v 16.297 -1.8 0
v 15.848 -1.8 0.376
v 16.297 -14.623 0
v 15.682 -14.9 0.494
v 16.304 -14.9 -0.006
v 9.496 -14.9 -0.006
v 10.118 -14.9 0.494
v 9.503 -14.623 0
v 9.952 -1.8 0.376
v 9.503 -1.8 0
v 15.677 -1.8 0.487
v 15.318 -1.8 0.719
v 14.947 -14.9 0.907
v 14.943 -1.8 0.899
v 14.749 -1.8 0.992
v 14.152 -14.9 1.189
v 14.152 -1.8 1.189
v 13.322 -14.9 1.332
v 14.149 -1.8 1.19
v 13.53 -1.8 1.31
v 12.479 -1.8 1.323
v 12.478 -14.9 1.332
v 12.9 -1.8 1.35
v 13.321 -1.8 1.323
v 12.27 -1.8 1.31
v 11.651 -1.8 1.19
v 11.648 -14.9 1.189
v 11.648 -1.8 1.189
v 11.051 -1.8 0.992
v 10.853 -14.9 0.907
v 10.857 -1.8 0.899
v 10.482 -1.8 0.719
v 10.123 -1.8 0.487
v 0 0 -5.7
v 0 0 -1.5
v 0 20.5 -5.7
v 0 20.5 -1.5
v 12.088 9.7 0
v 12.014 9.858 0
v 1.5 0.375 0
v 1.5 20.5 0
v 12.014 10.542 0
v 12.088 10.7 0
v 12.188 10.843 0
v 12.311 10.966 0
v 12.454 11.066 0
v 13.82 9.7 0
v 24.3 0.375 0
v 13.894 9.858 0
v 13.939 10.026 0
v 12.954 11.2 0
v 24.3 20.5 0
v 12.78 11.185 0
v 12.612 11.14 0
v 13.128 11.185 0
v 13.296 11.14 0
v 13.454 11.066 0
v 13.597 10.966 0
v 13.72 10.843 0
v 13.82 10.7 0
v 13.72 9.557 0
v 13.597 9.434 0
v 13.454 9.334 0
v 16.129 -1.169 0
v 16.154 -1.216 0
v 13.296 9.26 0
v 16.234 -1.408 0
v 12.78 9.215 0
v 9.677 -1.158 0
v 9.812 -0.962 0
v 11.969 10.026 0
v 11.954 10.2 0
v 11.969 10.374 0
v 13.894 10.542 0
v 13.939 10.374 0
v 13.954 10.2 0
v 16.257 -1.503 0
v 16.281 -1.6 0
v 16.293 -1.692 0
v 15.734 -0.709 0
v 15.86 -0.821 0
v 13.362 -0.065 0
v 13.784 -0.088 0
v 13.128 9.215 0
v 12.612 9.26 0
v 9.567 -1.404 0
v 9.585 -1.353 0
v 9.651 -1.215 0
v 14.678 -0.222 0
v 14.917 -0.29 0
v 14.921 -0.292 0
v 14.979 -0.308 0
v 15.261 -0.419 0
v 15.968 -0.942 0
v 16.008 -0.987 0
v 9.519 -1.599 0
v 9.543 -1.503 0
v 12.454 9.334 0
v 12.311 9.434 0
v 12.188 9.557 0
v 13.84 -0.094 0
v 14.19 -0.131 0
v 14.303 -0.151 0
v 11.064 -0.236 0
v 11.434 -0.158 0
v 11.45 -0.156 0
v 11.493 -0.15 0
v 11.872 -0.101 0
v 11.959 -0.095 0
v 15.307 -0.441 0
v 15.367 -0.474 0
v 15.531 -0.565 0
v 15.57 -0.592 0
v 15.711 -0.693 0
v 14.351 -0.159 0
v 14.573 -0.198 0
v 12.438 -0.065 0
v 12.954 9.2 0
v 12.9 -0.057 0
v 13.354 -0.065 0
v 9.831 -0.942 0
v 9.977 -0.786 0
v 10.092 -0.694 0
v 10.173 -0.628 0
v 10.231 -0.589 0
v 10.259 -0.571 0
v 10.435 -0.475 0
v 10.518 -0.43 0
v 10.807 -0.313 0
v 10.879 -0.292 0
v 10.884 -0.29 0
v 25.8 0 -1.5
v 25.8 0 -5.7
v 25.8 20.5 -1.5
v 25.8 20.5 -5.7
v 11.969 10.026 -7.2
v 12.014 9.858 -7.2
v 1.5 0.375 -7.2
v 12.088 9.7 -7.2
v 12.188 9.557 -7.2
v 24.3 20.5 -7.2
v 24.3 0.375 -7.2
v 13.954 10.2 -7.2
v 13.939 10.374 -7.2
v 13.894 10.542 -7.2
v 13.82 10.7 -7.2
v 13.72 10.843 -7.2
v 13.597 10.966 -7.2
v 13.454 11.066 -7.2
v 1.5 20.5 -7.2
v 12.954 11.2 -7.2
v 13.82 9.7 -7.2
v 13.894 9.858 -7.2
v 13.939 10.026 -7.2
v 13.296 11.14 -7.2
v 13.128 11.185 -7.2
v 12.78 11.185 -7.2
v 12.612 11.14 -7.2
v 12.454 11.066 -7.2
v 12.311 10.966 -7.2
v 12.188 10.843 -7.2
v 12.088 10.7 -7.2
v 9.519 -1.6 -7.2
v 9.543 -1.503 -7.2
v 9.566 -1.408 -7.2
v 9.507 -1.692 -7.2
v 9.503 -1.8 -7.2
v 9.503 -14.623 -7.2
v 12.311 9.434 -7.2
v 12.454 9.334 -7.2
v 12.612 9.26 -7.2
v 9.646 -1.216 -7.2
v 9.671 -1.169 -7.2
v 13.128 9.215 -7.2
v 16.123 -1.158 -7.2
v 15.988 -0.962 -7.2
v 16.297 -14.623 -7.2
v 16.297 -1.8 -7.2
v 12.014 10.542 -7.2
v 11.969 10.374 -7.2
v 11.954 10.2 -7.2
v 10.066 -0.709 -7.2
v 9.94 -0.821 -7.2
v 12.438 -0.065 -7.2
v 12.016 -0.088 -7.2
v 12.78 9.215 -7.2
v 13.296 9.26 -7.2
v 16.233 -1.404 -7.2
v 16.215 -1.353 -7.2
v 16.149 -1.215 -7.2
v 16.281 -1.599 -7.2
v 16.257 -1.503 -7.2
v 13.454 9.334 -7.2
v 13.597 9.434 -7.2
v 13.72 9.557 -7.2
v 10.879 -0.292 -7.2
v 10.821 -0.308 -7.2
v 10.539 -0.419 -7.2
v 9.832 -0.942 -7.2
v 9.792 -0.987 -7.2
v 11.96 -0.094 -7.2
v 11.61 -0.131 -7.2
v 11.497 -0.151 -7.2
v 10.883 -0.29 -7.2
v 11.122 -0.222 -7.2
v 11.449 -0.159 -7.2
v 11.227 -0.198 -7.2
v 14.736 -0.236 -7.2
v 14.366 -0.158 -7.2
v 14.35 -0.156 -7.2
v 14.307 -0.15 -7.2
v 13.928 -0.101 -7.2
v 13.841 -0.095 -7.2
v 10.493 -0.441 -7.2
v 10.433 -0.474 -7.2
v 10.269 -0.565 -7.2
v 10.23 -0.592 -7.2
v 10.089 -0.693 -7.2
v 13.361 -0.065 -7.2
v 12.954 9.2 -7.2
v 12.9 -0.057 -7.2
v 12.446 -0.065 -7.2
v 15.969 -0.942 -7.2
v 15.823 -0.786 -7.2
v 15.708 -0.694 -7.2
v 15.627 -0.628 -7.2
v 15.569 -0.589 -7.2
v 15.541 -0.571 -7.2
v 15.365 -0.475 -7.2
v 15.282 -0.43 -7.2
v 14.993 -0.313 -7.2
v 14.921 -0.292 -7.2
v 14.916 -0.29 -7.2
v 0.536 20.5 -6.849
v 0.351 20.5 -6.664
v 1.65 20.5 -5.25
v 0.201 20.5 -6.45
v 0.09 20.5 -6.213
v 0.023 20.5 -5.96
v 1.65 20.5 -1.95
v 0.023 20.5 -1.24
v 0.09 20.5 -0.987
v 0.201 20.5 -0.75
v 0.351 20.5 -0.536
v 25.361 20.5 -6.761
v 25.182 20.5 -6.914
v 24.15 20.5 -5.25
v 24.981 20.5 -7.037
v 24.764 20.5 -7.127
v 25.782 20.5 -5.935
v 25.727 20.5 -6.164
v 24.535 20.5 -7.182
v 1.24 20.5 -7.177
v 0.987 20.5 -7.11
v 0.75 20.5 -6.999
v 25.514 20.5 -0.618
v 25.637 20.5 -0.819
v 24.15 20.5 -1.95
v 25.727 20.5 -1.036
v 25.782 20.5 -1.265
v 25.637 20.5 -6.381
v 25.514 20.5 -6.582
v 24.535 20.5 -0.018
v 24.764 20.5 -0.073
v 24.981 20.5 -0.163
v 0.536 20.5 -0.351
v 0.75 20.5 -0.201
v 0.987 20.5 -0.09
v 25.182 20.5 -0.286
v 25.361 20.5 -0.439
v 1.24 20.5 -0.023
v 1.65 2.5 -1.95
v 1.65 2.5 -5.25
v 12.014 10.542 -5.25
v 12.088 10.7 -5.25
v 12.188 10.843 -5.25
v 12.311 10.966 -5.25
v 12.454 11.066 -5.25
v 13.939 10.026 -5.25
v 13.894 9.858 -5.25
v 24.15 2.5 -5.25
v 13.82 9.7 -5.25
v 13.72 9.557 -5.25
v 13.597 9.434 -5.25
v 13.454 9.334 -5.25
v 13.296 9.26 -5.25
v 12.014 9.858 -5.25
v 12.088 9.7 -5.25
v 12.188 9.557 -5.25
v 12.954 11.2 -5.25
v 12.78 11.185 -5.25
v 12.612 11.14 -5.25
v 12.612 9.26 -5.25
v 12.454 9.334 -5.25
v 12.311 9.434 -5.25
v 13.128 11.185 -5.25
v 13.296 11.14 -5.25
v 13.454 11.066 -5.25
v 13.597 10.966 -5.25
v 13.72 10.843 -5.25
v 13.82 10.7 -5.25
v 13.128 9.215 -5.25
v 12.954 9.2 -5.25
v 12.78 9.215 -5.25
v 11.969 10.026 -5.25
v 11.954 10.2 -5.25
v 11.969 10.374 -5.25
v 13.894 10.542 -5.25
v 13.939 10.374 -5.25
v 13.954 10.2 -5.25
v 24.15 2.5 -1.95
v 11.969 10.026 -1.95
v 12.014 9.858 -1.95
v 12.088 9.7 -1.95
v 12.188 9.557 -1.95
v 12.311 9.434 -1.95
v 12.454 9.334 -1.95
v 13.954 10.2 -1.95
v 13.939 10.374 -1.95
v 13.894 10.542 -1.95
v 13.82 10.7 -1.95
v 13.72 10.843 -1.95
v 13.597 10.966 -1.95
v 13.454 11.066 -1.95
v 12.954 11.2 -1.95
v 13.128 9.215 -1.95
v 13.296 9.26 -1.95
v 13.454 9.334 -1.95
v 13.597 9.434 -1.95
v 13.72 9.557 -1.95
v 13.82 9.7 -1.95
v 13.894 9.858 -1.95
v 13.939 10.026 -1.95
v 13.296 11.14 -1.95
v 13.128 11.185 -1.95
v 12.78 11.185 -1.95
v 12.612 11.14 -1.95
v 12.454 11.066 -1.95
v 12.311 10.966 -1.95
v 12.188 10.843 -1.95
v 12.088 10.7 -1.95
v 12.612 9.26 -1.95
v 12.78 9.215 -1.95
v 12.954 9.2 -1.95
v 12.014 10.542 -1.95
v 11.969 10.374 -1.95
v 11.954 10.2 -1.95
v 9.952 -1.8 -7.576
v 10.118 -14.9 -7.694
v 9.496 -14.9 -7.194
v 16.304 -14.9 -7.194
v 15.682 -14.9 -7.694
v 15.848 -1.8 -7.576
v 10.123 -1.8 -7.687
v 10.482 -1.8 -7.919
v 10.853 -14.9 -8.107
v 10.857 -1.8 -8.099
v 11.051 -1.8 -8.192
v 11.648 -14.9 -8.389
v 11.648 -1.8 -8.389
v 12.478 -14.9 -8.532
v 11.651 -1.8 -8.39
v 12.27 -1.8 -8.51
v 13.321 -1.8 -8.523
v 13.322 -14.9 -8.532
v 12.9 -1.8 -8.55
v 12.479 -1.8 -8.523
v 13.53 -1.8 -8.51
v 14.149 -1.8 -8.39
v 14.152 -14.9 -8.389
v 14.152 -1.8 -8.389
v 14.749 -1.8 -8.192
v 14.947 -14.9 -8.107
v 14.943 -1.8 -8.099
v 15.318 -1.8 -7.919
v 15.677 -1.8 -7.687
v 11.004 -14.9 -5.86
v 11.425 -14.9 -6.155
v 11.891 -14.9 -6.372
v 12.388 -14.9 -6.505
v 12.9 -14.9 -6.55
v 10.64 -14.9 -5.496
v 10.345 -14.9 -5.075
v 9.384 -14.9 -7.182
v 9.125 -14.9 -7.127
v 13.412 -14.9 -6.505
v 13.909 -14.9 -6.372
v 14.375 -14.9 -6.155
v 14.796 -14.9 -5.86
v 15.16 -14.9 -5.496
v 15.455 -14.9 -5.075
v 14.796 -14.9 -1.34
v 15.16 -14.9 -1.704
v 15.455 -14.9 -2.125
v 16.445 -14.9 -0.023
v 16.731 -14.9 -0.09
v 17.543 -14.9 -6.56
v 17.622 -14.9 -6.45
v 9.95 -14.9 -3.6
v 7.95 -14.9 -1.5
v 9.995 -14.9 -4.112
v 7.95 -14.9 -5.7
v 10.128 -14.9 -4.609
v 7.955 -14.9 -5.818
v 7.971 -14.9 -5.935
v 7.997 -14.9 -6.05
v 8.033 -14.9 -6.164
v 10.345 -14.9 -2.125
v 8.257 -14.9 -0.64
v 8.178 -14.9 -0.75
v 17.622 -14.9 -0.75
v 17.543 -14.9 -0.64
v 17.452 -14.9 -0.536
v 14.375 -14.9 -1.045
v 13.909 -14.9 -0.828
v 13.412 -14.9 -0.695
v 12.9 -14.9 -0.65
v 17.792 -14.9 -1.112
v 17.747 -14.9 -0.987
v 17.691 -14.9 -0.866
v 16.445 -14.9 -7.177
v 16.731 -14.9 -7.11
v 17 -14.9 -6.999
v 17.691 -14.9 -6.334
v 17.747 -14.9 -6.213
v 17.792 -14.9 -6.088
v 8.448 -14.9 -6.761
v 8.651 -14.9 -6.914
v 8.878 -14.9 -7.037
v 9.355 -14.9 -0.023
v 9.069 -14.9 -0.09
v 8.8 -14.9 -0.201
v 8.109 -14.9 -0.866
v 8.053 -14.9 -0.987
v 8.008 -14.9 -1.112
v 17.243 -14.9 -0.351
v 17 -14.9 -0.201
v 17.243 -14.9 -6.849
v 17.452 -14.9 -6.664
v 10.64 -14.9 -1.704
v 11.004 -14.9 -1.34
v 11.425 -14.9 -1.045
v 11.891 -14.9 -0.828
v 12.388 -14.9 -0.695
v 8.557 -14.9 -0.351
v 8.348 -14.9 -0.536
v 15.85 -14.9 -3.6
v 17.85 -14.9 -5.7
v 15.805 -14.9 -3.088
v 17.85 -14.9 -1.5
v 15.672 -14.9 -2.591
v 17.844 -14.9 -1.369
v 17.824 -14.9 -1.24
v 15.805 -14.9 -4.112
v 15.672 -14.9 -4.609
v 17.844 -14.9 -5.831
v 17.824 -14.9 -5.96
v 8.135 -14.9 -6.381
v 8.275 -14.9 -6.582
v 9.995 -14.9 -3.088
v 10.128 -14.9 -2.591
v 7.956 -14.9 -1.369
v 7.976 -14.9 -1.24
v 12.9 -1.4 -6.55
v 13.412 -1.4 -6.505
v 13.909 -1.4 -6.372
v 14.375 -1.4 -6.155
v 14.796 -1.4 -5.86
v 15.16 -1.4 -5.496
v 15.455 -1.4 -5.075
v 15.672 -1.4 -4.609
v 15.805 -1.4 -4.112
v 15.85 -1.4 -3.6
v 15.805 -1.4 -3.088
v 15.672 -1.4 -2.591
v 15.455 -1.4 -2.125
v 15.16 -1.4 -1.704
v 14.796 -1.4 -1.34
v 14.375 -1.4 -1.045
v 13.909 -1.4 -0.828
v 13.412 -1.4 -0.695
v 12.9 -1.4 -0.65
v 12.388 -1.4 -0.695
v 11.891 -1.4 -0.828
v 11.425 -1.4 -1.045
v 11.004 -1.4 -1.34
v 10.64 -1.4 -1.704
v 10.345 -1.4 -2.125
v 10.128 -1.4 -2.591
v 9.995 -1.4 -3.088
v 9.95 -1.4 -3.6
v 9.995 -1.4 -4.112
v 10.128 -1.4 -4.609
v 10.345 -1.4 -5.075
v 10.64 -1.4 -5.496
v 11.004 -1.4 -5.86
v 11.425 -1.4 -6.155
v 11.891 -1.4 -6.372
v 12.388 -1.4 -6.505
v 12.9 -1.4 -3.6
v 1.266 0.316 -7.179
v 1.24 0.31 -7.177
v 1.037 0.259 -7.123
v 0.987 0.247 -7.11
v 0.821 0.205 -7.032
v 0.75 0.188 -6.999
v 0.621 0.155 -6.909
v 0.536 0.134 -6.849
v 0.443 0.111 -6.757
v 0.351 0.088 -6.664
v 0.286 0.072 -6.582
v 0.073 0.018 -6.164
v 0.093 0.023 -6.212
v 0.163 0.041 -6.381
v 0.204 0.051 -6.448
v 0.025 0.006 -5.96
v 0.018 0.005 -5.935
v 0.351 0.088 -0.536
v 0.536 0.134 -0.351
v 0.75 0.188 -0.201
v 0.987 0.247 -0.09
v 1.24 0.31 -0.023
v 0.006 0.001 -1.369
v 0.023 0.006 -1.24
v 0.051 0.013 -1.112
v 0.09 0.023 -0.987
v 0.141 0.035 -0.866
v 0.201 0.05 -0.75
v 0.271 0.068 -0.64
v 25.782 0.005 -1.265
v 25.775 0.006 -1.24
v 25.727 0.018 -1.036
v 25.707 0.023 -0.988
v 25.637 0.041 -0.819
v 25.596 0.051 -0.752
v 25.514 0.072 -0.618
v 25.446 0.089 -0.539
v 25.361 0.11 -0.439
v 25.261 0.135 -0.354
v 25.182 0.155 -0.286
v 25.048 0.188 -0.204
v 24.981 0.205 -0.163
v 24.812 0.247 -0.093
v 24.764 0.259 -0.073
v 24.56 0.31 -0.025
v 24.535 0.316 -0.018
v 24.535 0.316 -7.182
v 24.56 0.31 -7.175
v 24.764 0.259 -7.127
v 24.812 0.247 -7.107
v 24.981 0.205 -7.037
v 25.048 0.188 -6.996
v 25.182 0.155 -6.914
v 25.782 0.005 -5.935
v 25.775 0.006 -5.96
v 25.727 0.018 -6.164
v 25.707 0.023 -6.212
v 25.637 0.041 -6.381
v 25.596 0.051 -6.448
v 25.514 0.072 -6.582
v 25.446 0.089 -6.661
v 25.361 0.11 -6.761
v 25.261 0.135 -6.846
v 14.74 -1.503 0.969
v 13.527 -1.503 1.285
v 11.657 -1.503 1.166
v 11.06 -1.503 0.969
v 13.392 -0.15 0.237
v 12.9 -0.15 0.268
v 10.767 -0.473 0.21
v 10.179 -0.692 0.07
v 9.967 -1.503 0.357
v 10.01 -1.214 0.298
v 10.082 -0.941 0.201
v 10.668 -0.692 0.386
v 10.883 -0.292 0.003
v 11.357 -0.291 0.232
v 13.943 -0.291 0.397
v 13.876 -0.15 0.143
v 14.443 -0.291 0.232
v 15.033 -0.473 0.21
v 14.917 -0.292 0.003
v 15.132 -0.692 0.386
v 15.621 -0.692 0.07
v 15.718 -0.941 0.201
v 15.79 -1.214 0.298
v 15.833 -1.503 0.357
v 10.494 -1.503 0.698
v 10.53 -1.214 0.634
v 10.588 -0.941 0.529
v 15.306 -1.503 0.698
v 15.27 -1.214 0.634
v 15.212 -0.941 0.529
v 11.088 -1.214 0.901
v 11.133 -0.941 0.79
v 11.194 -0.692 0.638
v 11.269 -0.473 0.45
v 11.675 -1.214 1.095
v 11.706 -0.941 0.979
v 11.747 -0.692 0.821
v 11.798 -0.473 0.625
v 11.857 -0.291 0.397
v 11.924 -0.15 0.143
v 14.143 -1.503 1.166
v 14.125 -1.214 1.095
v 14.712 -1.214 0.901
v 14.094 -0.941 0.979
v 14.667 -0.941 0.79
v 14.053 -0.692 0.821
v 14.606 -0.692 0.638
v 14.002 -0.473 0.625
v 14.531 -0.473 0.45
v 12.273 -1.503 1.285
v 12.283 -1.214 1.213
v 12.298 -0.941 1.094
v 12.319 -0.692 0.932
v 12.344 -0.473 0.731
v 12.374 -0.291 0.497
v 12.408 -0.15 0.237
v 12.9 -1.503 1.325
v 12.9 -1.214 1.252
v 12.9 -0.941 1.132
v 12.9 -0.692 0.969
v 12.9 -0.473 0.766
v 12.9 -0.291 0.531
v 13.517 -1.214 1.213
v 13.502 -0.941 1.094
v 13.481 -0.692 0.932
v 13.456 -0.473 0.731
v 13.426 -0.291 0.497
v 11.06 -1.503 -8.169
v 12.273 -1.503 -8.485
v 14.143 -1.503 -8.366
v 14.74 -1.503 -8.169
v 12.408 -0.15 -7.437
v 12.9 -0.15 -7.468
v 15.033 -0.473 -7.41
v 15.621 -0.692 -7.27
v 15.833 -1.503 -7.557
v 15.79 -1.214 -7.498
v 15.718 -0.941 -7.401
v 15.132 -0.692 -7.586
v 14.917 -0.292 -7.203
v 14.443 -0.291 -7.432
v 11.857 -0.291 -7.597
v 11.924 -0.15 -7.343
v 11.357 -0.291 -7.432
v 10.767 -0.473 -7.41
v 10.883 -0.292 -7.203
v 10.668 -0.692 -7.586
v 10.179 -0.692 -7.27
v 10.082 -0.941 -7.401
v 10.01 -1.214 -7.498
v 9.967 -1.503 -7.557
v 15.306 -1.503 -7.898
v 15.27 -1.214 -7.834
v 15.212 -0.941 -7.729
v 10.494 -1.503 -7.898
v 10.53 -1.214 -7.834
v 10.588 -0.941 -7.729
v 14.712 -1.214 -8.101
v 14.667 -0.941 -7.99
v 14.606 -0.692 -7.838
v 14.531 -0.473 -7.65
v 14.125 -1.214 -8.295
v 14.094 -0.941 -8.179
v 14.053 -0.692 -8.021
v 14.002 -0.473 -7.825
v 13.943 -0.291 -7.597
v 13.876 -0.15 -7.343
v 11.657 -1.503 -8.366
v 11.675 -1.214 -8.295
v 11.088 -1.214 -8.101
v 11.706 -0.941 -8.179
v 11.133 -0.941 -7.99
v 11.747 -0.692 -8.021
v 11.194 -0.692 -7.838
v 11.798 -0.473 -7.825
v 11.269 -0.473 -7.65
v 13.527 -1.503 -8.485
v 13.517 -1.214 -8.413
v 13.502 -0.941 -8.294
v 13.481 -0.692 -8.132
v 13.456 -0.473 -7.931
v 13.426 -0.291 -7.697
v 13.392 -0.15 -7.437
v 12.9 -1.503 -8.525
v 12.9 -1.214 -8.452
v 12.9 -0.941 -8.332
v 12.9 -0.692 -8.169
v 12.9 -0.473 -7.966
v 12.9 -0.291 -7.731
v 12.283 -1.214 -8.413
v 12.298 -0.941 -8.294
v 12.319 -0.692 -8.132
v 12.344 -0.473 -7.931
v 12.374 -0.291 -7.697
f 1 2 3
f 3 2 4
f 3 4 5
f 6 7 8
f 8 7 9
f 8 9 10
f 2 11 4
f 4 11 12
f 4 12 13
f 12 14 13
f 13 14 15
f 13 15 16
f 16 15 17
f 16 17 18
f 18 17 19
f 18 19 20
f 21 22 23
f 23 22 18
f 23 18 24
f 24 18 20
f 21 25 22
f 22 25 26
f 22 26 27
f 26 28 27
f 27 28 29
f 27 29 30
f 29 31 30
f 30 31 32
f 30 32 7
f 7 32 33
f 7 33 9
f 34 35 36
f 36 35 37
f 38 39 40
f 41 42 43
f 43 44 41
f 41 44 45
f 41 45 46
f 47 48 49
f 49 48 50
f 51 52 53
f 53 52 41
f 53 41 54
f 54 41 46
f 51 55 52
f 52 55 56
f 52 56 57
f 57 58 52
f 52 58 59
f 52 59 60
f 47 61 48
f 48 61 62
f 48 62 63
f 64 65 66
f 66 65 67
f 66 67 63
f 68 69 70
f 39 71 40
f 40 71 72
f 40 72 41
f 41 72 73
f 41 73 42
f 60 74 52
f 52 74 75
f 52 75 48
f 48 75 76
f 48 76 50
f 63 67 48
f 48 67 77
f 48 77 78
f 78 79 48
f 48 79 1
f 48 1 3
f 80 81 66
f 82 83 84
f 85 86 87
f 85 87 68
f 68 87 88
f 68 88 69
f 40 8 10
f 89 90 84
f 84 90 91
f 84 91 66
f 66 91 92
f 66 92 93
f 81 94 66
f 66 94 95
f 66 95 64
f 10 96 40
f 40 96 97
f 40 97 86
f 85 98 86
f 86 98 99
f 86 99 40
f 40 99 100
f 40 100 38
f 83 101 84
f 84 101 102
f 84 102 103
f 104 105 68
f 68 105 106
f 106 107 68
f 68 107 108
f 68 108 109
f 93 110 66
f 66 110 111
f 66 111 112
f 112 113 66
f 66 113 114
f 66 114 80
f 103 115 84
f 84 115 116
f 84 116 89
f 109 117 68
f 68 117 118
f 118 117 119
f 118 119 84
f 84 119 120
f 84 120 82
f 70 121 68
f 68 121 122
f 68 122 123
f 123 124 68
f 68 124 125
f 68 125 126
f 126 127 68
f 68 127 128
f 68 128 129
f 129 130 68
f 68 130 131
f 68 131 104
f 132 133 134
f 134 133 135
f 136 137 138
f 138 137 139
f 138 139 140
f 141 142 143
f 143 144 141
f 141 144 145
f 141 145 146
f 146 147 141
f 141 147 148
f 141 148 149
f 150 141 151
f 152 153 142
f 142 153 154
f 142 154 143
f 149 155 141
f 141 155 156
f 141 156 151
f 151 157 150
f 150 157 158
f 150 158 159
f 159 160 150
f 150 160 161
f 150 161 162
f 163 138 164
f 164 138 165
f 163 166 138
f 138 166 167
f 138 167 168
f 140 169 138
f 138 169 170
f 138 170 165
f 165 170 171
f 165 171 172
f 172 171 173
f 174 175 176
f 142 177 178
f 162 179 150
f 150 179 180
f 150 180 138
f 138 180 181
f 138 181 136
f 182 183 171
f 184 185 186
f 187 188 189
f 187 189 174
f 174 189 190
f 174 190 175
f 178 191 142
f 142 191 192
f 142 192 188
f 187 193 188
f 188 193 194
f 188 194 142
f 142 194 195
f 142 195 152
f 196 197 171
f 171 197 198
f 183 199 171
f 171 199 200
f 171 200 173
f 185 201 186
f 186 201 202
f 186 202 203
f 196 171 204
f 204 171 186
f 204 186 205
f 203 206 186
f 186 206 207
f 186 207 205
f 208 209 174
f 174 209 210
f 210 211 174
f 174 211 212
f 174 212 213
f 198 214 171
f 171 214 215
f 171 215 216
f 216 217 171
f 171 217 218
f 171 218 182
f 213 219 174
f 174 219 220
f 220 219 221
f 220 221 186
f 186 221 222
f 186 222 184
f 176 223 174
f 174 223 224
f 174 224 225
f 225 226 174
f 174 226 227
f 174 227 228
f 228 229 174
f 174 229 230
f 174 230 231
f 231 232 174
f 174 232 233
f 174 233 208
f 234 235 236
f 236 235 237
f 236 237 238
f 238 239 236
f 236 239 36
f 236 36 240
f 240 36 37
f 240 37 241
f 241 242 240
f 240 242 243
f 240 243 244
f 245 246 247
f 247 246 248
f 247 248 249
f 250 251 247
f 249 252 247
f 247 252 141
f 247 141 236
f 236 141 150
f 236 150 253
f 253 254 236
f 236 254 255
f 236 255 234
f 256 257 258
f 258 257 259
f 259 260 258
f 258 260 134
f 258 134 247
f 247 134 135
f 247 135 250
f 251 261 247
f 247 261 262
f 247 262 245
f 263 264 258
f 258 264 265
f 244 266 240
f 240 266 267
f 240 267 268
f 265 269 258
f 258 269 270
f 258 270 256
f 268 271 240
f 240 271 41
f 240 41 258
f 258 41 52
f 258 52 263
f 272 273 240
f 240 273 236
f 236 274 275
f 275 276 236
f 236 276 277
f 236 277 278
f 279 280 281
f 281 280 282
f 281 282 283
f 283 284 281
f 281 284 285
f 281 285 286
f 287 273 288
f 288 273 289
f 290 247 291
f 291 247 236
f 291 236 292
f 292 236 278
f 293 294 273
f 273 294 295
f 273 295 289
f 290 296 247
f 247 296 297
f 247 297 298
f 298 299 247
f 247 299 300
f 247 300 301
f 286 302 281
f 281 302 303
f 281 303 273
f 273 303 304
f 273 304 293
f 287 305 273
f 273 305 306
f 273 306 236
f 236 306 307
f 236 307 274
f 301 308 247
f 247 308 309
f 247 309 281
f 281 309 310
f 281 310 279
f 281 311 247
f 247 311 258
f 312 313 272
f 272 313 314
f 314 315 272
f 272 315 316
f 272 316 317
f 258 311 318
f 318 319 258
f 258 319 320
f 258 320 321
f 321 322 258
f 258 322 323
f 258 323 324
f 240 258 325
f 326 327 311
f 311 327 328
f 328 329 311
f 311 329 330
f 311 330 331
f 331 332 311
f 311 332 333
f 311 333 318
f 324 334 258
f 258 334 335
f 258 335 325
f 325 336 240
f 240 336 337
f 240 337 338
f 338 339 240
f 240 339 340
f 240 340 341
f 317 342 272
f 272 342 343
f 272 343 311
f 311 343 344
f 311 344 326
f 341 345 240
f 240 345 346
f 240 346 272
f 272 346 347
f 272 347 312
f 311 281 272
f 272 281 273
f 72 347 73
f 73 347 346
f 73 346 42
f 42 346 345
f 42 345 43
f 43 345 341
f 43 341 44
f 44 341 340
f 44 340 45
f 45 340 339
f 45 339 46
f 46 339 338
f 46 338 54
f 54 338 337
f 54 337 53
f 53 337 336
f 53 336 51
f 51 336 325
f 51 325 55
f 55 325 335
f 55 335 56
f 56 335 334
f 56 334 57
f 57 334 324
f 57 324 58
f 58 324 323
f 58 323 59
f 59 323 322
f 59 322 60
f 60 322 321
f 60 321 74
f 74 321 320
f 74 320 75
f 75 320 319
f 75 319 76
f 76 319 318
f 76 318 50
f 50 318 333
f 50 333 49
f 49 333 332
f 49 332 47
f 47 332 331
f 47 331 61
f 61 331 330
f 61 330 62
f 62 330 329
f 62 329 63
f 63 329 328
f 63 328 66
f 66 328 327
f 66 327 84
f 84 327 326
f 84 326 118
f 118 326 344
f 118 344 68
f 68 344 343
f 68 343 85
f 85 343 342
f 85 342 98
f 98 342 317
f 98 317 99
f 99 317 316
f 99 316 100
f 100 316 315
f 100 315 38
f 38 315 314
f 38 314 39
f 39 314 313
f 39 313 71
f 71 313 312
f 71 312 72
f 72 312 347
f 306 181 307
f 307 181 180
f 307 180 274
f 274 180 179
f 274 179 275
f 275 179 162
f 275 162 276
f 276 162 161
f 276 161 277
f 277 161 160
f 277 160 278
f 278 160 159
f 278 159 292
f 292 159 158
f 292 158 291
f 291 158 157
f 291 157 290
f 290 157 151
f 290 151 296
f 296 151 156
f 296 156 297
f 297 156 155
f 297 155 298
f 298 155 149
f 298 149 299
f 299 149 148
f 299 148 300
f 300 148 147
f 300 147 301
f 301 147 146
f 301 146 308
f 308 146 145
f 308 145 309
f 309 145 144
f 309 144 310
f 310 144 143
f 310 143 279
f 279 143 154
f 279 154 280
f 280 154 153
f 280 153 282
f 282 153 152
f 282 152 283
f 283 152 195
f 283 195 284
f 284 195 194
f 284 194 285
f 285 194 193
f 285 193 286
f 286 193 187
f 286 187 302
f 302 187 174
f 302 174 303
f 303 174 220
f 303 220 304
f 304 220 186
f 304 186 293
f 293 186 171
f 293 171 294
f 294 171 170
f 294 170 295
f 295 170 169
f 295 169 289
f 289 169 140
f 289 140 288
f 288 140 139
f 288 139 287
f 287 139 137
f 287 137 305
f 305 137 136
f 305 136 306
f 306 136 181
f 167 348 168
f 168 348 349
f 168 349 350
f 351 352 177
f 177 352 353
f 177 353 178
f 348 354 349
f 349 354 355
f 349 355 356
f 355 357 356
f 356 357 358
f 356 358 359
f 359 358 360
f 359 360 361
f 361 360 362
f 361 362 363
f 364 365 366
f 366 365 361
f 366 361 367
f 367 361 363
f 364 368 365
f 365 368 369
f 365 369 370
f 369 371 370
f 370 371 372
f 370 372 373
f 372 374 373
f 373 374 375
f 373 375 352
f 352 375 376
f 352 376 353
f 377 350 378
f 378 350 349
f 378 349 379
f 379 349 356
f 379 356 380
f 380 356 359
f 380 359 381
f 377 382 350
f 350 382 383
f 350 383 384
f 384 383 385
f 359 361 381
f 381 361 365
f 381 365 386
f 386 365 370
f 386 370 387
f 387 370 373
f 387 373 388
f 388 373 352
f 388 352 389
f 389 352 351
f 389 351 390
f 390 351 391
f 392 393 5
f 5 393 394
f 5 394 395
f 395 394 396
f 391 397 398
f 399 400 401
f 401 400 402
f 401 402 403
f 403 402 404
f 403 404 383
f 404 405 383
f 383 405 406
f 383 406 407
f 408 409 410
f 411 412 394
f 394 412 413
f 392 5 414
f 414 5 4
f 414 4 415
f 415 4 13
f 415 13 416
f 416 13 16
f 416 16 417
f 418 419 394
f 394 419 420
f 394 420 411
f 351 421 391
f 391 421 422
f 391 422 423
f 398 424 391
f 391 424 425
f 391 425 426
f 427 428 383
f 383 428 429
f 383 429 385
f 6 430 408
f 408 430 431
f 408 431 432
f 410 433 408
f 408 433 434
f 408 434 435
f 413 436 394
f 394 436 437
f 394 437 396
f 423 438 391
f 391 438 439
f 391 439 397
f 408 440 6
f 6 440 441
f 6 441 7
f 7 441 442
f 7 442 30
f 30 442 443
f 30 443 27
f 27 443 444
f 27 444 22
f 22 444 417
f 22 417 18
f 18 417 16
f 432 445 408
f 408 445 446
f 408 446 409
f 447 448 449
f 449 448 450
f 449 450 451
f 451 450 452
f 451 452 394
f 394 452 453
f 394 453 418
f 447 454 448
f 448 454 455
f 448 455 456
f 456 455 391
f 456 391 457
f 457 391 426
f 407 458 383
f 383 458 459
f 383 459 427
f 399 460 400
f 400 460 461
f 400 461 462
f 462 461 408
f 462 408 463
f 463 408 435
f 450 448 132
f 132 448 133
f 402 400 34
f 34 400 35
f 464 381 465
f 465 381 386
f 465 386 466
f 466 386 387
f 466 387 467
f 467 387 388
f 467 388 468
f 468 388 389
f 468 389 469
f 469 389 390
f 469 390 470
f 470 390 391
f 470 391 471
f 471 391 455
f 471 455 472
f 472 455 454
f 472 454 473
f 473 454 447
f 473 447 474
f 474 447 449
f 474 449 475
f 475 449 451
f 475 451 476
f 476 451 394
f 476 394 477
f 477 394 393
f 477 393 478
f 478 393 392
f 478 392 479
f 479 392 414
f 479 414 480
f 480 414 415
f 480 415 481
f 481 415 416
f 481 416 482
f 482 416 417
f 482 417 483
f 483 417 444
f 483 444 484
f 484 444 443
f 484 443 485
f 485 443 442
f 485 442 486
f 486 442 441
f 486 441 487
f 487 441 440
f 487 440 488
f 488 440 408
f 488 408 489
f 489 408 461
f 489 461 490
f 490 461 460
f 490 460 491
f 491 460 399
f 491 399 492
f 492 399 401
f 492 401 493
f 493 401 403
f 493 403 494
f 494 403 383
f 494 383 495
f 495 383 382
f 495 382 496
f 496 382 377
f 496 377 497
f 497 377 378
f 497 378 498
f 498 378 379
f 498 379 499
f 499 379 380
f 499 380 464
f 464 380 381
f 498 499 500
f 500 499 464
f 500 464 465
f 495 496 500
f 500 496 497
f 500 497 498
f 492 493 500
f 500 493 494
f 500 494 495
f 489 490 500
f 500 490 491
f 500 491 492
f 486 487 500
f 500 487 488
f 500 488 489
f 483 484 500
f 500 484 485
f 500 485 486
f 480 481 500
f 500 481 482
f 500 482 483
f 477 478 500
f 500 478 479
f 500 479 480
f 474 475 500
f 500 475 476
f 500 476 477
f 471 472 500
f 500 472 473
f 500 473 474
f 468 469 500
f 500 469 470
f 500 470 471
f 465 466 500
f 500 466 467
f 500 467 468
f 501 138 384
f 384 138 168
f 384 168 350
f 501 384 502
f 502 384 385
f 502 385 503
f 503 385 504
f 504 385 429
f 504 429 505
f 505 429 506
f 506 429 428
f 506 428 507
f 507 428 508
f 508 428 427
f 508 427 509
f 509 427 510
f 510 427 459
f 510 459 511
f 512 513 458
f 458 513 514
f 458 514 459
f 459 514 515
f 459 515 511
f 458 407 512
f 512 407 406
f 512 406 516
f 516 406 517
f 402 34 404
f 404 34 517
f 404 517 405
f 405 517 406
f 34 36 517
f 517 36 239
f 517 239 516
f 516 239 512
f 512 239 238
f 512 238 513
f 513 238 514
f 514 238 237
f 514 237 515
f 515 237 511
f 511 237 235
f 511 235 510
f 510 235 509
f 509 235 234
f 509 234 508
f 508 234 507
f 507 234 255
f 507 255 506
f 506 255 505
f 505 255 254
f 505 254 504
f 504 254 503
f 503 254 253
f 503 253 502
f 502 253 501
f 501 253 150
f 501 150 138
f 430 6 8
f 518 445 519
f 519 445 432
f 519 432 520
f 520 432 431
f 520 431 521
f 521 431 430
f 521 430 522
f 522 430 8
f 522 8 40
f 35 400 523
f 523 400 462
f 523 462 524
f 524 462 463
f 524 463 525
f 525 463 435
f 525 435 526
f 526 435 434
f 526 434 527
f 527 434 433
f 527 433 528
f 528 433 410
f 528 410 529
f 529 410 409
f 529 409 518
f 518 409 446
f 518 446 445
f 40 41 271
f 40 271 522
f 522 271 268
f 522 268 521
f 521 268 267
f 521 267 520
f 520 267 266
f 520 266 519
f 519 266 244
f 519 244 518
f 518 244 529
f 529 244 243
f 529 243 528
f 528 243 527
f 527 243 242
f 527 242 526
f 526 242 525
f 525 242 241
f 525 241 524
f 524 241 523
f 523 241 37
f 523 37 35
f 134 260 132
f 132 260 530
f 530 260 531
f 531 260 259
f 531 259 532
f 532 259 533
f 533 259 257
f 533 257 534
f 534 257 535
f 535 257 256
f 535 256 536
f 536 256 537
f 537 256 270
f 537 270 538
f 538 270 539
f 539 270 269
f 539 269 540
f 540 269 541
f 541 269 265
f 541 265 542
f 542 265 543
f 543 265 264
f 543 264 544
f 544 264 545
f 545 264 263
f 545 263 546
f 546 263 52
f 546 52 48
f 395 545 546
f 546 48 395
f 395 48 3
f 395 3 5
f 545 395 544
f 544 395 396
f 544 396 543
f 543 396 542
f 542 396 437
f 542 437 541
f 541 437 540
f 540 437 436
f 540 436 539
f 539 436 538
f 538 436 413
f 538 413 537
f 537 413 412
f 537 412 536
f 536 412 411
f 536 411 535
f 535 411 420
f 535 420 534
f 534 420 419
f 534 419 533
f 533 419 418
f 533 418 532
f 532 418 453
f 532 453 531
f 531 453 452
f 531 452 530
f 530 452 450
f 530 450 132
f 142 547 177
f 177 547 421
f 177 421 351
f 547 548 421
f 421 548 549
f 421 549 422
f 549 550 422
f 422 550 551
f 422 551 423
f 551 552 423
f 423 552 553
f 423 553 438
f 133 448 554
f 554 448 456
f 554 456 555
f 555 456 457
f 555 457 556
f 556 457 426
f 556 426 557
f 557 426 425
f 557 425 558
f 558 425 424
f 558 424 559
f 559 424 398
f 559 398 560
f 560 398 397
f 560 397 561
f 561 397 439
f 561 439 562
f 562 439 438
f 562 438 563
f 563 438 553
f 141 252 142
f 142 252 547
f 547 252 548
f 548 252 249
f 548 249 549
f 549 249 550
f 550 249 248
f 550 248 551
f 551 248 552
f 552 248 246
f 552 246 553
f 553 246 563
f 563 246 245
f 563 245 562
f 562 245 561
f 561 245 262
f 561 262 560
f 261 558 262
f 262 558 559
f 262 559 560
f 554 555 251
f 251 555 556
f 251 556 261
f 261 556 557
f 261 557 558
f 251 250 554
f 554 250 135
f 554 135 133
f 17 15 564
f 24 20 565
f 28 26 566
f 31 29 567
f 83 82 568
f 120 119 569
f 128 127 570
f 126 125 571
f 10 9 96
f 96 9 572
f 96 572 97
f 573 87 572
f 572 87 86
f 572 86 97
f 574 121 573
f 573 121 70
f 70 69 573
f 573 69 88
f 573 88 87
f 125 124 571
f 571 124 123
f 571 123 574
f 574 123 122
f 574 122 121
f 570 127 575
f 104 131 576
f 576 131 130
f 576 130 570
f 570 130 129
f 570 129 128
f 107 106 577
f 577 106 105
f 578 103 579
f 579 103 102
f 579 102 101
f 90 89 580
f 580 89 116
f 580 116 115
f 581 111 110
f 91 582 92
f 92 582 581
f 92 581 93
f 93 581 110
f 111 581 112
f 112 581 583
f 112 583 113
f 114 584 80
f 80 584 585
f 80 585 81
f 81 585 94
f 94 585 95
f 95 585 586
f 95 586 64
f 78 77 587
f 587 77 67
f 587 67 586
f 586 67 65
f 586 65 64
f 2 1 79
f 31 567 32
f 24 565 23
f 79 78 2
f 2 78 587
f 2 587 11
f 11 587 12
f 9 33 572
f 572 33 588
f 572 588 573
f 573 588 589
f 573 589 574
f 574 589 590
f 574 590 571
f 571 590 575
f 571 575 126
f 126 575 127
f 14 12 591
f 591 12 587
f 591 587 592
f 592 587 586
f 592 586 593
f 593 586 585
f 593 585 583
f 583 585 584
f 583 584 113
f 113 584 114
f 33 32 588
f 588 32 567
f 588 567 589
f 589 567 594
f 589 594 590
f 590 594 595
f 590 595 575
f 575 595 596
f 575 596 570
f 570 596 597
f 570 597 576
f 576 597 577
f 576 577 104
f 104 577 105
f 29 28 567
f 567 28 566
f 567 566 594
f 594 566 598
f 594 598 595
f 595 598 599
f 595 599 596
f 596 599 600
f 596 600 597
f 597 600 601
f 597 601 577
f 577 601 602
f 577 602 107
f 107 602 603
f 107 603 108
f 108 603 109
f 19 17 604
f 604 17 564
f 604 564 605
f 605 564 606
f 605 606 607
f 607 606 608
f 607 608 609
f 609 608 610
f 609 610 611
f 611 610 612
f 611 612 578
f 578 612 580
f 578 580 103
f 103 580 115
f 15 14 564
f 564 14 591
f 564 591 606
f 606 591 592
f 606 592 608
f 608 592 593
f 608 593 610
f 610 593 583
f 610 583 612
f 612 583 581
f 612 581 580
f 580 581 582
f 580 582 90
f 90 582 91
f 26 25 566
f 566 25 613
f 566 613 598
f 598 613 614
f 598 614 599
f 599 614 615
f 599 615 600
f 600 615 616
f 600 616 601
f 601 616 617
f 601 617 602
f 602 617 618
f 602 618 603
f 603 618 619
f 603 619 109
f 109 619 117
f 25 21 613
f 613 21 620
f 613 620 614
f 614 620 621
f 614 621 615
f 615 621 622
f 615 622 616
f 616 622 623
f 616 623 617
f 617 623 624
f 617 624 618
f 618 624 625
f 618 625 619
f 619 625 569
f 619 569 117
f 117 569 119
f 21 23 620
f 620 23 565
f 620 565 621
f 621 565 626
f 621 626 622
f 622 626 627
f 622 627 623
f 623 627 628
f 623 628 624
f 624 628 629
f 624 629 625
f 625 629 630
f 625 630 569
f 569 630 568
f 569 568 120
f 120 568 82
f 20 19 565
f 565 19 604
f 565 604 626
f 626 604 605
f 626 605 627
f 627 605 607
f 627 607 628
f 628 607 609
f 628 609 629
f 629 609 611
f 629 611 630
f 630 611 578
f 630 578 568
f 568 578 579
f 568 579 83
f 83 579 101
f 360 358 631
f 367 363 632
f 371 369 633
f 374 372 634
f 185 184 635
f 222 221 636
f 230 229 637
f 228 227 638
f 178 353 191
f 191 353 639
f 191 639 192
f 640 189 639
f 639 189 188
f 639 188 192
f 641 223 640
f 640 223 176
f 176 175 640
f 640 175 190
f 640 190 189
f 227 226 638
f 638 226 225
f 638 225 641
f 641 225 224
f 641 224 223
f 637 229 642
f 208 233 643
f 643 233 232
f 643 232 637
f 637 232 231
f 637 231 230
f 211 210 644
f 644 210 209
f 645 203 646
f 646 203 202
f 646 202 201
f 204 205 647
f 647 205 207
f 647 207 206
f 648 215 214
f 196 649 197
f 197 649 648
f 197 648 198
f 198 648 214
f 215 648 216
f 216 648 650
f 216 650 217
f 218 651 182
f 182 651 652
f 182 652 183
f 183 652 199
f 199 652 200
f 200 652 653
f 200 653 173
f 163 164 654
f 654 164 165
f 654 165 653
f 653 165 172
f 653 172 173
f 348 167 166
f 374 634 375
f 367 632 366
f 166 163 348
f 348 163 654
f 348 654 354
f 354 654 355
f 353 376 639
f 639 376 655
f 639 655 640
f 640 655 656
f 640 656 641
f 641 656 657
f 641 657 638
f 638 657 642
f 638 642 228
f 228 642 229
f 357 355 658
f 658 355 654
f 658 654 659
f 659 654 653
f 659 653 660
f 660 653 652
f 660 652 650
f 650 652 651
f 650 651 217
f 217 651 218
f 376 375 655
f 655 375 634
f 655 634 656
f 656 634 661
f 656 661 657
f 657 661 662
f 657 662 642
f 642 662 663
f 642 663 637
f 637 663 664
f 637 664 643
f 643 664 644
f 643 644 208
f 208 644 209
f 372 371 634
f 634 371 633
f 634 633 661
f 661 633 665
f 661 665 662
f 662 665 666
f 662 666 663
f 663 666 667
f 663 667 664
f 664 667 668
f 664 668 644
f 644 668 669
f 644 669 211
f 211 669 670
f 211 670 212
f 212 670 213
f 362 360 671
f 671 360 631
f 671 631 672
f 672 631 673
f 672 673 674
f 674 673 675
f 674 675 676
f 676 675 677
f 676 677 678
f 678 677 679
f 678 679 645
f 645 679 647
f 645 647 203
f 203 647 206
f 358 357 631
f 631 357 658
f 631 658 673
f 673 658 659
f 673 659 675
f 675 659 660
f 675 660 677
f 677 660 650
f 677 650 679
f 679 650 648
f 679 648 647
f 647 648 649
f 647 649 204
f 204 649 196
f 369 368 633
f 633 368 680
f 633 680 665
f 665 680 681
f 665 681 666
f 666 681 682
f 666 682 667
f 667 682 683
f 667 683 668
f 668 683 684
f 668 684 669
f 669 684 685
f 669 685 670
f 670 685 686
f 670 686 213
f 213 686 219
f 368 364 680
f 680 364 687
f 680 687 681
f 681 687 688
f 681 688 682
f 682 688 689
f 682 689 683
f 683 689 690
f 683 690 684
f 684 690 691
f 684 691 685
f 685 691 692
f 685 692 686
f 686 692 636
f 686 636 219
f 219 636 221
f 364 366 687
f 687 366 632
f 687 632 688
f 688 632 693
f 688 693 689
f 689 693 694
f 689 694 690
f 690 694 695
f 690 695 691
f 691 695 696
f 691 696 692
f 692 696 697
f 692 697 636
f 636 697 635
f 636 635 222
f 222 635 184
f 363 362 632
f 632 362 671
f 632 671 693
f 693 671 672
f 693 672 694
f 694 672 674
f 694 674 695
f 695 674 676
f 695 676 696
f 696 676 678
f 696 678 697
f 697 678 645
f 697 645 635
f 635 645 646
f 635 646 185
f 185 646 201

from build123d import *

# Parameters (mm, degrees)
SKETCH2_W               = 25.8
SKETCH2_H               = 7.2
BOSS_EXTRUDE1_DEPTH     = 20.5
SKETCH3_W               = 22.5
SKETCH3_H               = 3.3
CUT_EXTRUDE1_DEPTH      = 18
CUT_EXTRUDE2_DEPTH      = 34.730253483
CUT_EXTRUDE2_DEPTH_BACK = 34.730253483
SKETCH4_R               = 1
SKETCH9_R               = 4.95
BOSS_EXTRUDE6_DEPTH     = 14.9
BOSS_EXTRUDE7_DEPTH     = 7.2
SKETCH12_R              = 2.95
CUT_EXTRUDE5_DEPTH      = 13.5
FILLET2_R               = 1.5
FILLET3_R               = 1.8


with BuildPart() as part:
    # Sketch2 → Boss-Extrude1 (new body)
    with BuildSketch(Plane(origin=(0, 0, 0), x_dir=(1, 0, 0), z_dir=(0, 1, 0))):
        with Locations((12.9, 3.6)):
            Rectangle(SKETCH2_W, SKETCH2_H)
    extrude(amount=BOSS_EXTRUDE1_DEPTH)

    # Sketch3 → Cut-Extrude1 (cut)
    with BuildSketch(Plane(origin=(0, 20.5, 0), x_dir=(1, 0, 0), z_dir=(0, 1, 0))):
        with Locations((12.9, 3.6)):
            Rectangle(SKETCH3_W, SKETCH3_H)
    extrude(amount=-CUT_EXTRUDE1_DEPTH, mode=Mode.SUBTRACT)

    # Sketch4 → Cut-Extrude2 (cut, two sides: drawn at the far end of the back side and taken through both)
    with BuildSketch(Plane(origin=(0, 0, -7.2), x_dir=(-1, 0, 0), z_dir=(0, 0, -1)).offset(-CUT_EXTRUDE2_DEPTH_BACK)):
        with Locations((-12.953971153, 10.2)):
            Circle(SKETCH4_R)
    extrude(amount=CUT_EXTRUDE2_DEPTH + CUT_EXTRUDE2_DEPTH_BACK, mode=Mode.SUBTRACT)

    # Sketch9 → Boss-Extrude6 (add)
    with BuildSketch(Plane(origin=(0, 0, 0), x_dir=(-1, 0, 0), z_dir=(0, -1, 0))):
        with Locations(Location((-12.9, 3.6, 0), (0, 0, 226.658241773))):
            Circle(SKETCH9_R)
    extrude(amount=BOSS_EXTRUDE6_DEPTH)

    # Sketch11 → Boss-Extrude7 (add)
    with BuildSketch(Plane(origin=(0, 0, -7.2), x_dir=(-1, 0, 0), z_dir=(0, 0, -1))):
        Polygon((-9.502574504, 0), (-12.9, 0), (-12.9, -14.9), (-7.95, -14.9), (0, 0), align=None)
        Polygon((-12.9, -14.9), (-12.9, 0), (-16.297425496, 0), (-25.8, 0), (-17.85, -14.9), align=None)
    extrude(amount=-BOSS_EXTRUDE7_DEPTH)

    # Sketch12 → Cut-Extrude5 (cut)
    with BuildSketch(Plane(origin=(0, -14.9, 0), x_dir=(-1, 0, 0), z_dir=(0, -1, 0))):
        with Locations(Location((-12.9, 3.6, 0), (0, 0, 90))):
            Circle(SKETCH12_R)
    extrude(amount=-CUT_EXTRUDE5_DEPTH, mode=Mode.SUBTRACT)

    # Fillet2
    # the kernel refuses this fillet: 1.5 mm, written as the material it takes off along each edge
    with BuildSketch(Plane(origin=(0, -3.75, -7.2), x_dir=(0, 0, 1), z_dir=(0, 1, 0)), Plane(origin=(0, -3.75, 0), x_dir=(1, 0, 0), z_dir=(0, 1, 0))) as fillet2_piece_1:
        with BuildLine():
            CenterArc((FILLET2_R, FILLET2_R), FILLET2_R, 180, 90)
            Line((0, FILLET2_R), (0, 0))
            Line((0, 0), (FILLET2_R, 0))
        make_face()
    extrude(amount=28, mode=Mode.SUBTRACT)
    with BuildSketch(Plane(origin=(9.715282105, -18.208516146, -7.2), x_dir=(0, 0, 1), z_dir=(-0.47074189463756383, 0.8822709723395851, 0))) as fillet2_piece_2_section:
        with BuildLine():
            CenterArc((FILLET2_R, FILLET2_R), FILLET2_R, 180, 90)
            Line((0, FILLET2_R), (0, 0))
            Line((0, 0), (FILLET2_R, 0))
        make_face()
    fillet2_piece_2 = extrude(amount=24.38823555, mode=Mode.PRIVATE)
    fillet2_piece_2 = fillet2_piece_2 - Plane(origin=(12.9, -7.082671963, -3.6), x_dir=(0.686348585021791, 0, 0.727272727275391), z_dir=(0, 1, 0)) * Cylinder(4.95, 55, mode=Mode.PRIVATE)
    add(fillet2_piece_2, mode=Mode.SUBTRACT)
    with BuildSketch(Plane(origin=(9.715282105, -18.208516146, 0), x_dir=(0.8822709723395851, 0.4707418946375639, 0), z_dir=(-0.47074189463756383, 0.8822709723395851, 0))) as fillet2_piece_3_section:
        with BuildLine():
            CenterArc((FILLET2_R, FILLET2_R), FILLET2_R, 180, 90)
            Line((0, FILLET2_R), (0, 0))
            Line((0, 0), (FILLET2_R, 0))
        make_face()
    fillet2_piece_3 = extrude(amount=24.38823555, mode=Mode.PRIVATE)
    fillet2_piece_3 = fillet2_piece_3 - Plane(origin=(12.9, -7.08267196, -3.6), x_dir=(0.686348585021791, 0, 0.727272727275391), z_dir=(0, 1, 0)) * Cylinder(4.95, 55, mode=Mode.PRIVATE)
    add(fillet2_piece_3, mode=Mode.SUBTRACT)
    with BuildSketch(Plane(origin=(27.565282105, 3.308516146, -7.2), x_dir=(0, 0, 1), z_dir=(-0.4707418946375641, -0.882270972339585, 0))) as fillet2_piece_4_section:
        with BuildLine():
            CenterArc((FILLET2_R, FILLET2_R), FILLET2_R, 180, 90)
            Line((0, FILLET2_R), (0, 0))
            Line((0, 0), (FILLET2_R, 0))
        make_face()
    fillet2_piece_4 = extrude(amount=24.38823555, mode=Mode.PRIVATE)
    fillet2_piece_4 = fillet2_piece_4 - Plane(origin=(12.9, -7.082671987, -3.6), x_dir=(0.686348585021791, 0, 0.727272727275391), z_dir=(0, 1, 0)) * Cylinder(4.95, 55, mode=Mode.PRIVATE)
    add(fillet2_piece_4, mode=Mode.SUBTRACT)
    with BuildSketch(Plane(origin=(27.565282105, 3.308516146, 0), x_dir=(-0.8822709723395848, 0.47074189463756405, 0), z_dir=(-0.4707418946375641, -0.882270972339585, 0))) as fillet2_piece_5_section:
        with BuildLine():
            CenterArc((FILLET2_R, FILLET2_R), FILLET2_R, 180, 90)
            Line((0, FILLET2_R), (0, 0))
            Line((0, 0), (FILLET2_R, 0))
        make_face()
    fillet2_piece_5 = extrude(amount=24.38823555, mode=Mode.PRIVATE)
    fillet2_piece_5 = fillet2_piece_5 - Plane(origin=(12.9, -7.082671971, -3.6), x_dir=(0.686348585021791, 0, 0.727272727275391), z_dir=(0, 1, 0)) * Cylinder(4.95, 55, mode=Mode.PRIVATE)
    add(fillet2_piece_5, mode=Mode.SUBTRACT)
    with BuildSketch(Plane(origin=(25.8, -3.75, 0), x_dir=(-1, 0, 0), z_dir=(0, 1, 0)), Plane(origin=(25.8, -3.75, -7.2), x_dir=(0, 0, 1), z_dir=(0, 1, 0))) as fillet2_piece_6:
        with BuildLine():
            CenterArc((FILLET2_R, -FILLET2_R), FILLET2_R, 90, 90)
            Line((0, -FILLET2_R), (0, 0))
            Line((0, 0), (FILLET2_R, 0))
        make_face()
    extrude(amount=28, mode=Mode.SUBTRACT)

    # Fillet3
    # the kernel refuses this fillet: 1.8 mm, written as the material it takes off along each edge
    with BuildSketch(Plane(origin=(12.9, 0, -3.6), x_dir=(0.9954823771301547, 0, -0.09494649452874186), z_dir=(-0.09494649452874186, 0, -0.9954823771301547))) as fillet3_piece_1_section:
        with BuildLine():
            CenterArc((4.95 - FILLET3_R, FILLET3_R), FILLET3_R, 270, 90)
            Line((4.95 - FILLET3_R, 0), (4.95, 0))
            Line((4.95, 0), (4.95, FILLET3_R))
        make_face()
    fillet3_piece_1 = revolve(axis=Axis((12.9, 0, -3.6), (0, -1, 0)), revolution_arc=190.896480509, mode=Mode.PRIVATE)
    fillet3_piece_1 = split(fillet3_piece_1, bisect_by=Plane(origin=(12.9, -0.687334204, 0), z_dir=(0, 0, 1)), keep=Keep.TOP, mode=Mode.PRIVATE)
    add(fillet3_piece_1, mode=Mode.SUBTRACT)
    with BuildSketch(Plane(origin=(12.9, 0, -3.6), x_dir=(-0.9954823771297855, 0, 0.09494649453261288), z_dir=(0.09494649453261288, 0, 0.9954823771297855))) as fillet3_piece_2_section:
        with BuildLine():
            CenterArc((4.95 - FILLET3_R, FILLET3_R), FILLET3_R, 270, 90)
            Line((4.95 - FILLET3_R, 0), (4.95, 0))
            Line((4.95, 0), (4.95, FILLET3_R))
        make_face()
    fillet3_piece_2 = revolve(axis=Axis((12.9, 0, -3.6), (0, -1, 0)), revolution_arc=190.89648051, mode=Mode.PRIVATE)
    fillet3_piece_2 = split(fillet3_piece_2, bisect_by=Plane(origin=(12.9, -0.687334204, -7.2), z_dir=(0, 0, -1)), keep=Keep.TOP, mode=Mode.PRIVATE)
    add(fillet3_piece_2, mode=Mode.SUBTRACT)


solid = part.part
